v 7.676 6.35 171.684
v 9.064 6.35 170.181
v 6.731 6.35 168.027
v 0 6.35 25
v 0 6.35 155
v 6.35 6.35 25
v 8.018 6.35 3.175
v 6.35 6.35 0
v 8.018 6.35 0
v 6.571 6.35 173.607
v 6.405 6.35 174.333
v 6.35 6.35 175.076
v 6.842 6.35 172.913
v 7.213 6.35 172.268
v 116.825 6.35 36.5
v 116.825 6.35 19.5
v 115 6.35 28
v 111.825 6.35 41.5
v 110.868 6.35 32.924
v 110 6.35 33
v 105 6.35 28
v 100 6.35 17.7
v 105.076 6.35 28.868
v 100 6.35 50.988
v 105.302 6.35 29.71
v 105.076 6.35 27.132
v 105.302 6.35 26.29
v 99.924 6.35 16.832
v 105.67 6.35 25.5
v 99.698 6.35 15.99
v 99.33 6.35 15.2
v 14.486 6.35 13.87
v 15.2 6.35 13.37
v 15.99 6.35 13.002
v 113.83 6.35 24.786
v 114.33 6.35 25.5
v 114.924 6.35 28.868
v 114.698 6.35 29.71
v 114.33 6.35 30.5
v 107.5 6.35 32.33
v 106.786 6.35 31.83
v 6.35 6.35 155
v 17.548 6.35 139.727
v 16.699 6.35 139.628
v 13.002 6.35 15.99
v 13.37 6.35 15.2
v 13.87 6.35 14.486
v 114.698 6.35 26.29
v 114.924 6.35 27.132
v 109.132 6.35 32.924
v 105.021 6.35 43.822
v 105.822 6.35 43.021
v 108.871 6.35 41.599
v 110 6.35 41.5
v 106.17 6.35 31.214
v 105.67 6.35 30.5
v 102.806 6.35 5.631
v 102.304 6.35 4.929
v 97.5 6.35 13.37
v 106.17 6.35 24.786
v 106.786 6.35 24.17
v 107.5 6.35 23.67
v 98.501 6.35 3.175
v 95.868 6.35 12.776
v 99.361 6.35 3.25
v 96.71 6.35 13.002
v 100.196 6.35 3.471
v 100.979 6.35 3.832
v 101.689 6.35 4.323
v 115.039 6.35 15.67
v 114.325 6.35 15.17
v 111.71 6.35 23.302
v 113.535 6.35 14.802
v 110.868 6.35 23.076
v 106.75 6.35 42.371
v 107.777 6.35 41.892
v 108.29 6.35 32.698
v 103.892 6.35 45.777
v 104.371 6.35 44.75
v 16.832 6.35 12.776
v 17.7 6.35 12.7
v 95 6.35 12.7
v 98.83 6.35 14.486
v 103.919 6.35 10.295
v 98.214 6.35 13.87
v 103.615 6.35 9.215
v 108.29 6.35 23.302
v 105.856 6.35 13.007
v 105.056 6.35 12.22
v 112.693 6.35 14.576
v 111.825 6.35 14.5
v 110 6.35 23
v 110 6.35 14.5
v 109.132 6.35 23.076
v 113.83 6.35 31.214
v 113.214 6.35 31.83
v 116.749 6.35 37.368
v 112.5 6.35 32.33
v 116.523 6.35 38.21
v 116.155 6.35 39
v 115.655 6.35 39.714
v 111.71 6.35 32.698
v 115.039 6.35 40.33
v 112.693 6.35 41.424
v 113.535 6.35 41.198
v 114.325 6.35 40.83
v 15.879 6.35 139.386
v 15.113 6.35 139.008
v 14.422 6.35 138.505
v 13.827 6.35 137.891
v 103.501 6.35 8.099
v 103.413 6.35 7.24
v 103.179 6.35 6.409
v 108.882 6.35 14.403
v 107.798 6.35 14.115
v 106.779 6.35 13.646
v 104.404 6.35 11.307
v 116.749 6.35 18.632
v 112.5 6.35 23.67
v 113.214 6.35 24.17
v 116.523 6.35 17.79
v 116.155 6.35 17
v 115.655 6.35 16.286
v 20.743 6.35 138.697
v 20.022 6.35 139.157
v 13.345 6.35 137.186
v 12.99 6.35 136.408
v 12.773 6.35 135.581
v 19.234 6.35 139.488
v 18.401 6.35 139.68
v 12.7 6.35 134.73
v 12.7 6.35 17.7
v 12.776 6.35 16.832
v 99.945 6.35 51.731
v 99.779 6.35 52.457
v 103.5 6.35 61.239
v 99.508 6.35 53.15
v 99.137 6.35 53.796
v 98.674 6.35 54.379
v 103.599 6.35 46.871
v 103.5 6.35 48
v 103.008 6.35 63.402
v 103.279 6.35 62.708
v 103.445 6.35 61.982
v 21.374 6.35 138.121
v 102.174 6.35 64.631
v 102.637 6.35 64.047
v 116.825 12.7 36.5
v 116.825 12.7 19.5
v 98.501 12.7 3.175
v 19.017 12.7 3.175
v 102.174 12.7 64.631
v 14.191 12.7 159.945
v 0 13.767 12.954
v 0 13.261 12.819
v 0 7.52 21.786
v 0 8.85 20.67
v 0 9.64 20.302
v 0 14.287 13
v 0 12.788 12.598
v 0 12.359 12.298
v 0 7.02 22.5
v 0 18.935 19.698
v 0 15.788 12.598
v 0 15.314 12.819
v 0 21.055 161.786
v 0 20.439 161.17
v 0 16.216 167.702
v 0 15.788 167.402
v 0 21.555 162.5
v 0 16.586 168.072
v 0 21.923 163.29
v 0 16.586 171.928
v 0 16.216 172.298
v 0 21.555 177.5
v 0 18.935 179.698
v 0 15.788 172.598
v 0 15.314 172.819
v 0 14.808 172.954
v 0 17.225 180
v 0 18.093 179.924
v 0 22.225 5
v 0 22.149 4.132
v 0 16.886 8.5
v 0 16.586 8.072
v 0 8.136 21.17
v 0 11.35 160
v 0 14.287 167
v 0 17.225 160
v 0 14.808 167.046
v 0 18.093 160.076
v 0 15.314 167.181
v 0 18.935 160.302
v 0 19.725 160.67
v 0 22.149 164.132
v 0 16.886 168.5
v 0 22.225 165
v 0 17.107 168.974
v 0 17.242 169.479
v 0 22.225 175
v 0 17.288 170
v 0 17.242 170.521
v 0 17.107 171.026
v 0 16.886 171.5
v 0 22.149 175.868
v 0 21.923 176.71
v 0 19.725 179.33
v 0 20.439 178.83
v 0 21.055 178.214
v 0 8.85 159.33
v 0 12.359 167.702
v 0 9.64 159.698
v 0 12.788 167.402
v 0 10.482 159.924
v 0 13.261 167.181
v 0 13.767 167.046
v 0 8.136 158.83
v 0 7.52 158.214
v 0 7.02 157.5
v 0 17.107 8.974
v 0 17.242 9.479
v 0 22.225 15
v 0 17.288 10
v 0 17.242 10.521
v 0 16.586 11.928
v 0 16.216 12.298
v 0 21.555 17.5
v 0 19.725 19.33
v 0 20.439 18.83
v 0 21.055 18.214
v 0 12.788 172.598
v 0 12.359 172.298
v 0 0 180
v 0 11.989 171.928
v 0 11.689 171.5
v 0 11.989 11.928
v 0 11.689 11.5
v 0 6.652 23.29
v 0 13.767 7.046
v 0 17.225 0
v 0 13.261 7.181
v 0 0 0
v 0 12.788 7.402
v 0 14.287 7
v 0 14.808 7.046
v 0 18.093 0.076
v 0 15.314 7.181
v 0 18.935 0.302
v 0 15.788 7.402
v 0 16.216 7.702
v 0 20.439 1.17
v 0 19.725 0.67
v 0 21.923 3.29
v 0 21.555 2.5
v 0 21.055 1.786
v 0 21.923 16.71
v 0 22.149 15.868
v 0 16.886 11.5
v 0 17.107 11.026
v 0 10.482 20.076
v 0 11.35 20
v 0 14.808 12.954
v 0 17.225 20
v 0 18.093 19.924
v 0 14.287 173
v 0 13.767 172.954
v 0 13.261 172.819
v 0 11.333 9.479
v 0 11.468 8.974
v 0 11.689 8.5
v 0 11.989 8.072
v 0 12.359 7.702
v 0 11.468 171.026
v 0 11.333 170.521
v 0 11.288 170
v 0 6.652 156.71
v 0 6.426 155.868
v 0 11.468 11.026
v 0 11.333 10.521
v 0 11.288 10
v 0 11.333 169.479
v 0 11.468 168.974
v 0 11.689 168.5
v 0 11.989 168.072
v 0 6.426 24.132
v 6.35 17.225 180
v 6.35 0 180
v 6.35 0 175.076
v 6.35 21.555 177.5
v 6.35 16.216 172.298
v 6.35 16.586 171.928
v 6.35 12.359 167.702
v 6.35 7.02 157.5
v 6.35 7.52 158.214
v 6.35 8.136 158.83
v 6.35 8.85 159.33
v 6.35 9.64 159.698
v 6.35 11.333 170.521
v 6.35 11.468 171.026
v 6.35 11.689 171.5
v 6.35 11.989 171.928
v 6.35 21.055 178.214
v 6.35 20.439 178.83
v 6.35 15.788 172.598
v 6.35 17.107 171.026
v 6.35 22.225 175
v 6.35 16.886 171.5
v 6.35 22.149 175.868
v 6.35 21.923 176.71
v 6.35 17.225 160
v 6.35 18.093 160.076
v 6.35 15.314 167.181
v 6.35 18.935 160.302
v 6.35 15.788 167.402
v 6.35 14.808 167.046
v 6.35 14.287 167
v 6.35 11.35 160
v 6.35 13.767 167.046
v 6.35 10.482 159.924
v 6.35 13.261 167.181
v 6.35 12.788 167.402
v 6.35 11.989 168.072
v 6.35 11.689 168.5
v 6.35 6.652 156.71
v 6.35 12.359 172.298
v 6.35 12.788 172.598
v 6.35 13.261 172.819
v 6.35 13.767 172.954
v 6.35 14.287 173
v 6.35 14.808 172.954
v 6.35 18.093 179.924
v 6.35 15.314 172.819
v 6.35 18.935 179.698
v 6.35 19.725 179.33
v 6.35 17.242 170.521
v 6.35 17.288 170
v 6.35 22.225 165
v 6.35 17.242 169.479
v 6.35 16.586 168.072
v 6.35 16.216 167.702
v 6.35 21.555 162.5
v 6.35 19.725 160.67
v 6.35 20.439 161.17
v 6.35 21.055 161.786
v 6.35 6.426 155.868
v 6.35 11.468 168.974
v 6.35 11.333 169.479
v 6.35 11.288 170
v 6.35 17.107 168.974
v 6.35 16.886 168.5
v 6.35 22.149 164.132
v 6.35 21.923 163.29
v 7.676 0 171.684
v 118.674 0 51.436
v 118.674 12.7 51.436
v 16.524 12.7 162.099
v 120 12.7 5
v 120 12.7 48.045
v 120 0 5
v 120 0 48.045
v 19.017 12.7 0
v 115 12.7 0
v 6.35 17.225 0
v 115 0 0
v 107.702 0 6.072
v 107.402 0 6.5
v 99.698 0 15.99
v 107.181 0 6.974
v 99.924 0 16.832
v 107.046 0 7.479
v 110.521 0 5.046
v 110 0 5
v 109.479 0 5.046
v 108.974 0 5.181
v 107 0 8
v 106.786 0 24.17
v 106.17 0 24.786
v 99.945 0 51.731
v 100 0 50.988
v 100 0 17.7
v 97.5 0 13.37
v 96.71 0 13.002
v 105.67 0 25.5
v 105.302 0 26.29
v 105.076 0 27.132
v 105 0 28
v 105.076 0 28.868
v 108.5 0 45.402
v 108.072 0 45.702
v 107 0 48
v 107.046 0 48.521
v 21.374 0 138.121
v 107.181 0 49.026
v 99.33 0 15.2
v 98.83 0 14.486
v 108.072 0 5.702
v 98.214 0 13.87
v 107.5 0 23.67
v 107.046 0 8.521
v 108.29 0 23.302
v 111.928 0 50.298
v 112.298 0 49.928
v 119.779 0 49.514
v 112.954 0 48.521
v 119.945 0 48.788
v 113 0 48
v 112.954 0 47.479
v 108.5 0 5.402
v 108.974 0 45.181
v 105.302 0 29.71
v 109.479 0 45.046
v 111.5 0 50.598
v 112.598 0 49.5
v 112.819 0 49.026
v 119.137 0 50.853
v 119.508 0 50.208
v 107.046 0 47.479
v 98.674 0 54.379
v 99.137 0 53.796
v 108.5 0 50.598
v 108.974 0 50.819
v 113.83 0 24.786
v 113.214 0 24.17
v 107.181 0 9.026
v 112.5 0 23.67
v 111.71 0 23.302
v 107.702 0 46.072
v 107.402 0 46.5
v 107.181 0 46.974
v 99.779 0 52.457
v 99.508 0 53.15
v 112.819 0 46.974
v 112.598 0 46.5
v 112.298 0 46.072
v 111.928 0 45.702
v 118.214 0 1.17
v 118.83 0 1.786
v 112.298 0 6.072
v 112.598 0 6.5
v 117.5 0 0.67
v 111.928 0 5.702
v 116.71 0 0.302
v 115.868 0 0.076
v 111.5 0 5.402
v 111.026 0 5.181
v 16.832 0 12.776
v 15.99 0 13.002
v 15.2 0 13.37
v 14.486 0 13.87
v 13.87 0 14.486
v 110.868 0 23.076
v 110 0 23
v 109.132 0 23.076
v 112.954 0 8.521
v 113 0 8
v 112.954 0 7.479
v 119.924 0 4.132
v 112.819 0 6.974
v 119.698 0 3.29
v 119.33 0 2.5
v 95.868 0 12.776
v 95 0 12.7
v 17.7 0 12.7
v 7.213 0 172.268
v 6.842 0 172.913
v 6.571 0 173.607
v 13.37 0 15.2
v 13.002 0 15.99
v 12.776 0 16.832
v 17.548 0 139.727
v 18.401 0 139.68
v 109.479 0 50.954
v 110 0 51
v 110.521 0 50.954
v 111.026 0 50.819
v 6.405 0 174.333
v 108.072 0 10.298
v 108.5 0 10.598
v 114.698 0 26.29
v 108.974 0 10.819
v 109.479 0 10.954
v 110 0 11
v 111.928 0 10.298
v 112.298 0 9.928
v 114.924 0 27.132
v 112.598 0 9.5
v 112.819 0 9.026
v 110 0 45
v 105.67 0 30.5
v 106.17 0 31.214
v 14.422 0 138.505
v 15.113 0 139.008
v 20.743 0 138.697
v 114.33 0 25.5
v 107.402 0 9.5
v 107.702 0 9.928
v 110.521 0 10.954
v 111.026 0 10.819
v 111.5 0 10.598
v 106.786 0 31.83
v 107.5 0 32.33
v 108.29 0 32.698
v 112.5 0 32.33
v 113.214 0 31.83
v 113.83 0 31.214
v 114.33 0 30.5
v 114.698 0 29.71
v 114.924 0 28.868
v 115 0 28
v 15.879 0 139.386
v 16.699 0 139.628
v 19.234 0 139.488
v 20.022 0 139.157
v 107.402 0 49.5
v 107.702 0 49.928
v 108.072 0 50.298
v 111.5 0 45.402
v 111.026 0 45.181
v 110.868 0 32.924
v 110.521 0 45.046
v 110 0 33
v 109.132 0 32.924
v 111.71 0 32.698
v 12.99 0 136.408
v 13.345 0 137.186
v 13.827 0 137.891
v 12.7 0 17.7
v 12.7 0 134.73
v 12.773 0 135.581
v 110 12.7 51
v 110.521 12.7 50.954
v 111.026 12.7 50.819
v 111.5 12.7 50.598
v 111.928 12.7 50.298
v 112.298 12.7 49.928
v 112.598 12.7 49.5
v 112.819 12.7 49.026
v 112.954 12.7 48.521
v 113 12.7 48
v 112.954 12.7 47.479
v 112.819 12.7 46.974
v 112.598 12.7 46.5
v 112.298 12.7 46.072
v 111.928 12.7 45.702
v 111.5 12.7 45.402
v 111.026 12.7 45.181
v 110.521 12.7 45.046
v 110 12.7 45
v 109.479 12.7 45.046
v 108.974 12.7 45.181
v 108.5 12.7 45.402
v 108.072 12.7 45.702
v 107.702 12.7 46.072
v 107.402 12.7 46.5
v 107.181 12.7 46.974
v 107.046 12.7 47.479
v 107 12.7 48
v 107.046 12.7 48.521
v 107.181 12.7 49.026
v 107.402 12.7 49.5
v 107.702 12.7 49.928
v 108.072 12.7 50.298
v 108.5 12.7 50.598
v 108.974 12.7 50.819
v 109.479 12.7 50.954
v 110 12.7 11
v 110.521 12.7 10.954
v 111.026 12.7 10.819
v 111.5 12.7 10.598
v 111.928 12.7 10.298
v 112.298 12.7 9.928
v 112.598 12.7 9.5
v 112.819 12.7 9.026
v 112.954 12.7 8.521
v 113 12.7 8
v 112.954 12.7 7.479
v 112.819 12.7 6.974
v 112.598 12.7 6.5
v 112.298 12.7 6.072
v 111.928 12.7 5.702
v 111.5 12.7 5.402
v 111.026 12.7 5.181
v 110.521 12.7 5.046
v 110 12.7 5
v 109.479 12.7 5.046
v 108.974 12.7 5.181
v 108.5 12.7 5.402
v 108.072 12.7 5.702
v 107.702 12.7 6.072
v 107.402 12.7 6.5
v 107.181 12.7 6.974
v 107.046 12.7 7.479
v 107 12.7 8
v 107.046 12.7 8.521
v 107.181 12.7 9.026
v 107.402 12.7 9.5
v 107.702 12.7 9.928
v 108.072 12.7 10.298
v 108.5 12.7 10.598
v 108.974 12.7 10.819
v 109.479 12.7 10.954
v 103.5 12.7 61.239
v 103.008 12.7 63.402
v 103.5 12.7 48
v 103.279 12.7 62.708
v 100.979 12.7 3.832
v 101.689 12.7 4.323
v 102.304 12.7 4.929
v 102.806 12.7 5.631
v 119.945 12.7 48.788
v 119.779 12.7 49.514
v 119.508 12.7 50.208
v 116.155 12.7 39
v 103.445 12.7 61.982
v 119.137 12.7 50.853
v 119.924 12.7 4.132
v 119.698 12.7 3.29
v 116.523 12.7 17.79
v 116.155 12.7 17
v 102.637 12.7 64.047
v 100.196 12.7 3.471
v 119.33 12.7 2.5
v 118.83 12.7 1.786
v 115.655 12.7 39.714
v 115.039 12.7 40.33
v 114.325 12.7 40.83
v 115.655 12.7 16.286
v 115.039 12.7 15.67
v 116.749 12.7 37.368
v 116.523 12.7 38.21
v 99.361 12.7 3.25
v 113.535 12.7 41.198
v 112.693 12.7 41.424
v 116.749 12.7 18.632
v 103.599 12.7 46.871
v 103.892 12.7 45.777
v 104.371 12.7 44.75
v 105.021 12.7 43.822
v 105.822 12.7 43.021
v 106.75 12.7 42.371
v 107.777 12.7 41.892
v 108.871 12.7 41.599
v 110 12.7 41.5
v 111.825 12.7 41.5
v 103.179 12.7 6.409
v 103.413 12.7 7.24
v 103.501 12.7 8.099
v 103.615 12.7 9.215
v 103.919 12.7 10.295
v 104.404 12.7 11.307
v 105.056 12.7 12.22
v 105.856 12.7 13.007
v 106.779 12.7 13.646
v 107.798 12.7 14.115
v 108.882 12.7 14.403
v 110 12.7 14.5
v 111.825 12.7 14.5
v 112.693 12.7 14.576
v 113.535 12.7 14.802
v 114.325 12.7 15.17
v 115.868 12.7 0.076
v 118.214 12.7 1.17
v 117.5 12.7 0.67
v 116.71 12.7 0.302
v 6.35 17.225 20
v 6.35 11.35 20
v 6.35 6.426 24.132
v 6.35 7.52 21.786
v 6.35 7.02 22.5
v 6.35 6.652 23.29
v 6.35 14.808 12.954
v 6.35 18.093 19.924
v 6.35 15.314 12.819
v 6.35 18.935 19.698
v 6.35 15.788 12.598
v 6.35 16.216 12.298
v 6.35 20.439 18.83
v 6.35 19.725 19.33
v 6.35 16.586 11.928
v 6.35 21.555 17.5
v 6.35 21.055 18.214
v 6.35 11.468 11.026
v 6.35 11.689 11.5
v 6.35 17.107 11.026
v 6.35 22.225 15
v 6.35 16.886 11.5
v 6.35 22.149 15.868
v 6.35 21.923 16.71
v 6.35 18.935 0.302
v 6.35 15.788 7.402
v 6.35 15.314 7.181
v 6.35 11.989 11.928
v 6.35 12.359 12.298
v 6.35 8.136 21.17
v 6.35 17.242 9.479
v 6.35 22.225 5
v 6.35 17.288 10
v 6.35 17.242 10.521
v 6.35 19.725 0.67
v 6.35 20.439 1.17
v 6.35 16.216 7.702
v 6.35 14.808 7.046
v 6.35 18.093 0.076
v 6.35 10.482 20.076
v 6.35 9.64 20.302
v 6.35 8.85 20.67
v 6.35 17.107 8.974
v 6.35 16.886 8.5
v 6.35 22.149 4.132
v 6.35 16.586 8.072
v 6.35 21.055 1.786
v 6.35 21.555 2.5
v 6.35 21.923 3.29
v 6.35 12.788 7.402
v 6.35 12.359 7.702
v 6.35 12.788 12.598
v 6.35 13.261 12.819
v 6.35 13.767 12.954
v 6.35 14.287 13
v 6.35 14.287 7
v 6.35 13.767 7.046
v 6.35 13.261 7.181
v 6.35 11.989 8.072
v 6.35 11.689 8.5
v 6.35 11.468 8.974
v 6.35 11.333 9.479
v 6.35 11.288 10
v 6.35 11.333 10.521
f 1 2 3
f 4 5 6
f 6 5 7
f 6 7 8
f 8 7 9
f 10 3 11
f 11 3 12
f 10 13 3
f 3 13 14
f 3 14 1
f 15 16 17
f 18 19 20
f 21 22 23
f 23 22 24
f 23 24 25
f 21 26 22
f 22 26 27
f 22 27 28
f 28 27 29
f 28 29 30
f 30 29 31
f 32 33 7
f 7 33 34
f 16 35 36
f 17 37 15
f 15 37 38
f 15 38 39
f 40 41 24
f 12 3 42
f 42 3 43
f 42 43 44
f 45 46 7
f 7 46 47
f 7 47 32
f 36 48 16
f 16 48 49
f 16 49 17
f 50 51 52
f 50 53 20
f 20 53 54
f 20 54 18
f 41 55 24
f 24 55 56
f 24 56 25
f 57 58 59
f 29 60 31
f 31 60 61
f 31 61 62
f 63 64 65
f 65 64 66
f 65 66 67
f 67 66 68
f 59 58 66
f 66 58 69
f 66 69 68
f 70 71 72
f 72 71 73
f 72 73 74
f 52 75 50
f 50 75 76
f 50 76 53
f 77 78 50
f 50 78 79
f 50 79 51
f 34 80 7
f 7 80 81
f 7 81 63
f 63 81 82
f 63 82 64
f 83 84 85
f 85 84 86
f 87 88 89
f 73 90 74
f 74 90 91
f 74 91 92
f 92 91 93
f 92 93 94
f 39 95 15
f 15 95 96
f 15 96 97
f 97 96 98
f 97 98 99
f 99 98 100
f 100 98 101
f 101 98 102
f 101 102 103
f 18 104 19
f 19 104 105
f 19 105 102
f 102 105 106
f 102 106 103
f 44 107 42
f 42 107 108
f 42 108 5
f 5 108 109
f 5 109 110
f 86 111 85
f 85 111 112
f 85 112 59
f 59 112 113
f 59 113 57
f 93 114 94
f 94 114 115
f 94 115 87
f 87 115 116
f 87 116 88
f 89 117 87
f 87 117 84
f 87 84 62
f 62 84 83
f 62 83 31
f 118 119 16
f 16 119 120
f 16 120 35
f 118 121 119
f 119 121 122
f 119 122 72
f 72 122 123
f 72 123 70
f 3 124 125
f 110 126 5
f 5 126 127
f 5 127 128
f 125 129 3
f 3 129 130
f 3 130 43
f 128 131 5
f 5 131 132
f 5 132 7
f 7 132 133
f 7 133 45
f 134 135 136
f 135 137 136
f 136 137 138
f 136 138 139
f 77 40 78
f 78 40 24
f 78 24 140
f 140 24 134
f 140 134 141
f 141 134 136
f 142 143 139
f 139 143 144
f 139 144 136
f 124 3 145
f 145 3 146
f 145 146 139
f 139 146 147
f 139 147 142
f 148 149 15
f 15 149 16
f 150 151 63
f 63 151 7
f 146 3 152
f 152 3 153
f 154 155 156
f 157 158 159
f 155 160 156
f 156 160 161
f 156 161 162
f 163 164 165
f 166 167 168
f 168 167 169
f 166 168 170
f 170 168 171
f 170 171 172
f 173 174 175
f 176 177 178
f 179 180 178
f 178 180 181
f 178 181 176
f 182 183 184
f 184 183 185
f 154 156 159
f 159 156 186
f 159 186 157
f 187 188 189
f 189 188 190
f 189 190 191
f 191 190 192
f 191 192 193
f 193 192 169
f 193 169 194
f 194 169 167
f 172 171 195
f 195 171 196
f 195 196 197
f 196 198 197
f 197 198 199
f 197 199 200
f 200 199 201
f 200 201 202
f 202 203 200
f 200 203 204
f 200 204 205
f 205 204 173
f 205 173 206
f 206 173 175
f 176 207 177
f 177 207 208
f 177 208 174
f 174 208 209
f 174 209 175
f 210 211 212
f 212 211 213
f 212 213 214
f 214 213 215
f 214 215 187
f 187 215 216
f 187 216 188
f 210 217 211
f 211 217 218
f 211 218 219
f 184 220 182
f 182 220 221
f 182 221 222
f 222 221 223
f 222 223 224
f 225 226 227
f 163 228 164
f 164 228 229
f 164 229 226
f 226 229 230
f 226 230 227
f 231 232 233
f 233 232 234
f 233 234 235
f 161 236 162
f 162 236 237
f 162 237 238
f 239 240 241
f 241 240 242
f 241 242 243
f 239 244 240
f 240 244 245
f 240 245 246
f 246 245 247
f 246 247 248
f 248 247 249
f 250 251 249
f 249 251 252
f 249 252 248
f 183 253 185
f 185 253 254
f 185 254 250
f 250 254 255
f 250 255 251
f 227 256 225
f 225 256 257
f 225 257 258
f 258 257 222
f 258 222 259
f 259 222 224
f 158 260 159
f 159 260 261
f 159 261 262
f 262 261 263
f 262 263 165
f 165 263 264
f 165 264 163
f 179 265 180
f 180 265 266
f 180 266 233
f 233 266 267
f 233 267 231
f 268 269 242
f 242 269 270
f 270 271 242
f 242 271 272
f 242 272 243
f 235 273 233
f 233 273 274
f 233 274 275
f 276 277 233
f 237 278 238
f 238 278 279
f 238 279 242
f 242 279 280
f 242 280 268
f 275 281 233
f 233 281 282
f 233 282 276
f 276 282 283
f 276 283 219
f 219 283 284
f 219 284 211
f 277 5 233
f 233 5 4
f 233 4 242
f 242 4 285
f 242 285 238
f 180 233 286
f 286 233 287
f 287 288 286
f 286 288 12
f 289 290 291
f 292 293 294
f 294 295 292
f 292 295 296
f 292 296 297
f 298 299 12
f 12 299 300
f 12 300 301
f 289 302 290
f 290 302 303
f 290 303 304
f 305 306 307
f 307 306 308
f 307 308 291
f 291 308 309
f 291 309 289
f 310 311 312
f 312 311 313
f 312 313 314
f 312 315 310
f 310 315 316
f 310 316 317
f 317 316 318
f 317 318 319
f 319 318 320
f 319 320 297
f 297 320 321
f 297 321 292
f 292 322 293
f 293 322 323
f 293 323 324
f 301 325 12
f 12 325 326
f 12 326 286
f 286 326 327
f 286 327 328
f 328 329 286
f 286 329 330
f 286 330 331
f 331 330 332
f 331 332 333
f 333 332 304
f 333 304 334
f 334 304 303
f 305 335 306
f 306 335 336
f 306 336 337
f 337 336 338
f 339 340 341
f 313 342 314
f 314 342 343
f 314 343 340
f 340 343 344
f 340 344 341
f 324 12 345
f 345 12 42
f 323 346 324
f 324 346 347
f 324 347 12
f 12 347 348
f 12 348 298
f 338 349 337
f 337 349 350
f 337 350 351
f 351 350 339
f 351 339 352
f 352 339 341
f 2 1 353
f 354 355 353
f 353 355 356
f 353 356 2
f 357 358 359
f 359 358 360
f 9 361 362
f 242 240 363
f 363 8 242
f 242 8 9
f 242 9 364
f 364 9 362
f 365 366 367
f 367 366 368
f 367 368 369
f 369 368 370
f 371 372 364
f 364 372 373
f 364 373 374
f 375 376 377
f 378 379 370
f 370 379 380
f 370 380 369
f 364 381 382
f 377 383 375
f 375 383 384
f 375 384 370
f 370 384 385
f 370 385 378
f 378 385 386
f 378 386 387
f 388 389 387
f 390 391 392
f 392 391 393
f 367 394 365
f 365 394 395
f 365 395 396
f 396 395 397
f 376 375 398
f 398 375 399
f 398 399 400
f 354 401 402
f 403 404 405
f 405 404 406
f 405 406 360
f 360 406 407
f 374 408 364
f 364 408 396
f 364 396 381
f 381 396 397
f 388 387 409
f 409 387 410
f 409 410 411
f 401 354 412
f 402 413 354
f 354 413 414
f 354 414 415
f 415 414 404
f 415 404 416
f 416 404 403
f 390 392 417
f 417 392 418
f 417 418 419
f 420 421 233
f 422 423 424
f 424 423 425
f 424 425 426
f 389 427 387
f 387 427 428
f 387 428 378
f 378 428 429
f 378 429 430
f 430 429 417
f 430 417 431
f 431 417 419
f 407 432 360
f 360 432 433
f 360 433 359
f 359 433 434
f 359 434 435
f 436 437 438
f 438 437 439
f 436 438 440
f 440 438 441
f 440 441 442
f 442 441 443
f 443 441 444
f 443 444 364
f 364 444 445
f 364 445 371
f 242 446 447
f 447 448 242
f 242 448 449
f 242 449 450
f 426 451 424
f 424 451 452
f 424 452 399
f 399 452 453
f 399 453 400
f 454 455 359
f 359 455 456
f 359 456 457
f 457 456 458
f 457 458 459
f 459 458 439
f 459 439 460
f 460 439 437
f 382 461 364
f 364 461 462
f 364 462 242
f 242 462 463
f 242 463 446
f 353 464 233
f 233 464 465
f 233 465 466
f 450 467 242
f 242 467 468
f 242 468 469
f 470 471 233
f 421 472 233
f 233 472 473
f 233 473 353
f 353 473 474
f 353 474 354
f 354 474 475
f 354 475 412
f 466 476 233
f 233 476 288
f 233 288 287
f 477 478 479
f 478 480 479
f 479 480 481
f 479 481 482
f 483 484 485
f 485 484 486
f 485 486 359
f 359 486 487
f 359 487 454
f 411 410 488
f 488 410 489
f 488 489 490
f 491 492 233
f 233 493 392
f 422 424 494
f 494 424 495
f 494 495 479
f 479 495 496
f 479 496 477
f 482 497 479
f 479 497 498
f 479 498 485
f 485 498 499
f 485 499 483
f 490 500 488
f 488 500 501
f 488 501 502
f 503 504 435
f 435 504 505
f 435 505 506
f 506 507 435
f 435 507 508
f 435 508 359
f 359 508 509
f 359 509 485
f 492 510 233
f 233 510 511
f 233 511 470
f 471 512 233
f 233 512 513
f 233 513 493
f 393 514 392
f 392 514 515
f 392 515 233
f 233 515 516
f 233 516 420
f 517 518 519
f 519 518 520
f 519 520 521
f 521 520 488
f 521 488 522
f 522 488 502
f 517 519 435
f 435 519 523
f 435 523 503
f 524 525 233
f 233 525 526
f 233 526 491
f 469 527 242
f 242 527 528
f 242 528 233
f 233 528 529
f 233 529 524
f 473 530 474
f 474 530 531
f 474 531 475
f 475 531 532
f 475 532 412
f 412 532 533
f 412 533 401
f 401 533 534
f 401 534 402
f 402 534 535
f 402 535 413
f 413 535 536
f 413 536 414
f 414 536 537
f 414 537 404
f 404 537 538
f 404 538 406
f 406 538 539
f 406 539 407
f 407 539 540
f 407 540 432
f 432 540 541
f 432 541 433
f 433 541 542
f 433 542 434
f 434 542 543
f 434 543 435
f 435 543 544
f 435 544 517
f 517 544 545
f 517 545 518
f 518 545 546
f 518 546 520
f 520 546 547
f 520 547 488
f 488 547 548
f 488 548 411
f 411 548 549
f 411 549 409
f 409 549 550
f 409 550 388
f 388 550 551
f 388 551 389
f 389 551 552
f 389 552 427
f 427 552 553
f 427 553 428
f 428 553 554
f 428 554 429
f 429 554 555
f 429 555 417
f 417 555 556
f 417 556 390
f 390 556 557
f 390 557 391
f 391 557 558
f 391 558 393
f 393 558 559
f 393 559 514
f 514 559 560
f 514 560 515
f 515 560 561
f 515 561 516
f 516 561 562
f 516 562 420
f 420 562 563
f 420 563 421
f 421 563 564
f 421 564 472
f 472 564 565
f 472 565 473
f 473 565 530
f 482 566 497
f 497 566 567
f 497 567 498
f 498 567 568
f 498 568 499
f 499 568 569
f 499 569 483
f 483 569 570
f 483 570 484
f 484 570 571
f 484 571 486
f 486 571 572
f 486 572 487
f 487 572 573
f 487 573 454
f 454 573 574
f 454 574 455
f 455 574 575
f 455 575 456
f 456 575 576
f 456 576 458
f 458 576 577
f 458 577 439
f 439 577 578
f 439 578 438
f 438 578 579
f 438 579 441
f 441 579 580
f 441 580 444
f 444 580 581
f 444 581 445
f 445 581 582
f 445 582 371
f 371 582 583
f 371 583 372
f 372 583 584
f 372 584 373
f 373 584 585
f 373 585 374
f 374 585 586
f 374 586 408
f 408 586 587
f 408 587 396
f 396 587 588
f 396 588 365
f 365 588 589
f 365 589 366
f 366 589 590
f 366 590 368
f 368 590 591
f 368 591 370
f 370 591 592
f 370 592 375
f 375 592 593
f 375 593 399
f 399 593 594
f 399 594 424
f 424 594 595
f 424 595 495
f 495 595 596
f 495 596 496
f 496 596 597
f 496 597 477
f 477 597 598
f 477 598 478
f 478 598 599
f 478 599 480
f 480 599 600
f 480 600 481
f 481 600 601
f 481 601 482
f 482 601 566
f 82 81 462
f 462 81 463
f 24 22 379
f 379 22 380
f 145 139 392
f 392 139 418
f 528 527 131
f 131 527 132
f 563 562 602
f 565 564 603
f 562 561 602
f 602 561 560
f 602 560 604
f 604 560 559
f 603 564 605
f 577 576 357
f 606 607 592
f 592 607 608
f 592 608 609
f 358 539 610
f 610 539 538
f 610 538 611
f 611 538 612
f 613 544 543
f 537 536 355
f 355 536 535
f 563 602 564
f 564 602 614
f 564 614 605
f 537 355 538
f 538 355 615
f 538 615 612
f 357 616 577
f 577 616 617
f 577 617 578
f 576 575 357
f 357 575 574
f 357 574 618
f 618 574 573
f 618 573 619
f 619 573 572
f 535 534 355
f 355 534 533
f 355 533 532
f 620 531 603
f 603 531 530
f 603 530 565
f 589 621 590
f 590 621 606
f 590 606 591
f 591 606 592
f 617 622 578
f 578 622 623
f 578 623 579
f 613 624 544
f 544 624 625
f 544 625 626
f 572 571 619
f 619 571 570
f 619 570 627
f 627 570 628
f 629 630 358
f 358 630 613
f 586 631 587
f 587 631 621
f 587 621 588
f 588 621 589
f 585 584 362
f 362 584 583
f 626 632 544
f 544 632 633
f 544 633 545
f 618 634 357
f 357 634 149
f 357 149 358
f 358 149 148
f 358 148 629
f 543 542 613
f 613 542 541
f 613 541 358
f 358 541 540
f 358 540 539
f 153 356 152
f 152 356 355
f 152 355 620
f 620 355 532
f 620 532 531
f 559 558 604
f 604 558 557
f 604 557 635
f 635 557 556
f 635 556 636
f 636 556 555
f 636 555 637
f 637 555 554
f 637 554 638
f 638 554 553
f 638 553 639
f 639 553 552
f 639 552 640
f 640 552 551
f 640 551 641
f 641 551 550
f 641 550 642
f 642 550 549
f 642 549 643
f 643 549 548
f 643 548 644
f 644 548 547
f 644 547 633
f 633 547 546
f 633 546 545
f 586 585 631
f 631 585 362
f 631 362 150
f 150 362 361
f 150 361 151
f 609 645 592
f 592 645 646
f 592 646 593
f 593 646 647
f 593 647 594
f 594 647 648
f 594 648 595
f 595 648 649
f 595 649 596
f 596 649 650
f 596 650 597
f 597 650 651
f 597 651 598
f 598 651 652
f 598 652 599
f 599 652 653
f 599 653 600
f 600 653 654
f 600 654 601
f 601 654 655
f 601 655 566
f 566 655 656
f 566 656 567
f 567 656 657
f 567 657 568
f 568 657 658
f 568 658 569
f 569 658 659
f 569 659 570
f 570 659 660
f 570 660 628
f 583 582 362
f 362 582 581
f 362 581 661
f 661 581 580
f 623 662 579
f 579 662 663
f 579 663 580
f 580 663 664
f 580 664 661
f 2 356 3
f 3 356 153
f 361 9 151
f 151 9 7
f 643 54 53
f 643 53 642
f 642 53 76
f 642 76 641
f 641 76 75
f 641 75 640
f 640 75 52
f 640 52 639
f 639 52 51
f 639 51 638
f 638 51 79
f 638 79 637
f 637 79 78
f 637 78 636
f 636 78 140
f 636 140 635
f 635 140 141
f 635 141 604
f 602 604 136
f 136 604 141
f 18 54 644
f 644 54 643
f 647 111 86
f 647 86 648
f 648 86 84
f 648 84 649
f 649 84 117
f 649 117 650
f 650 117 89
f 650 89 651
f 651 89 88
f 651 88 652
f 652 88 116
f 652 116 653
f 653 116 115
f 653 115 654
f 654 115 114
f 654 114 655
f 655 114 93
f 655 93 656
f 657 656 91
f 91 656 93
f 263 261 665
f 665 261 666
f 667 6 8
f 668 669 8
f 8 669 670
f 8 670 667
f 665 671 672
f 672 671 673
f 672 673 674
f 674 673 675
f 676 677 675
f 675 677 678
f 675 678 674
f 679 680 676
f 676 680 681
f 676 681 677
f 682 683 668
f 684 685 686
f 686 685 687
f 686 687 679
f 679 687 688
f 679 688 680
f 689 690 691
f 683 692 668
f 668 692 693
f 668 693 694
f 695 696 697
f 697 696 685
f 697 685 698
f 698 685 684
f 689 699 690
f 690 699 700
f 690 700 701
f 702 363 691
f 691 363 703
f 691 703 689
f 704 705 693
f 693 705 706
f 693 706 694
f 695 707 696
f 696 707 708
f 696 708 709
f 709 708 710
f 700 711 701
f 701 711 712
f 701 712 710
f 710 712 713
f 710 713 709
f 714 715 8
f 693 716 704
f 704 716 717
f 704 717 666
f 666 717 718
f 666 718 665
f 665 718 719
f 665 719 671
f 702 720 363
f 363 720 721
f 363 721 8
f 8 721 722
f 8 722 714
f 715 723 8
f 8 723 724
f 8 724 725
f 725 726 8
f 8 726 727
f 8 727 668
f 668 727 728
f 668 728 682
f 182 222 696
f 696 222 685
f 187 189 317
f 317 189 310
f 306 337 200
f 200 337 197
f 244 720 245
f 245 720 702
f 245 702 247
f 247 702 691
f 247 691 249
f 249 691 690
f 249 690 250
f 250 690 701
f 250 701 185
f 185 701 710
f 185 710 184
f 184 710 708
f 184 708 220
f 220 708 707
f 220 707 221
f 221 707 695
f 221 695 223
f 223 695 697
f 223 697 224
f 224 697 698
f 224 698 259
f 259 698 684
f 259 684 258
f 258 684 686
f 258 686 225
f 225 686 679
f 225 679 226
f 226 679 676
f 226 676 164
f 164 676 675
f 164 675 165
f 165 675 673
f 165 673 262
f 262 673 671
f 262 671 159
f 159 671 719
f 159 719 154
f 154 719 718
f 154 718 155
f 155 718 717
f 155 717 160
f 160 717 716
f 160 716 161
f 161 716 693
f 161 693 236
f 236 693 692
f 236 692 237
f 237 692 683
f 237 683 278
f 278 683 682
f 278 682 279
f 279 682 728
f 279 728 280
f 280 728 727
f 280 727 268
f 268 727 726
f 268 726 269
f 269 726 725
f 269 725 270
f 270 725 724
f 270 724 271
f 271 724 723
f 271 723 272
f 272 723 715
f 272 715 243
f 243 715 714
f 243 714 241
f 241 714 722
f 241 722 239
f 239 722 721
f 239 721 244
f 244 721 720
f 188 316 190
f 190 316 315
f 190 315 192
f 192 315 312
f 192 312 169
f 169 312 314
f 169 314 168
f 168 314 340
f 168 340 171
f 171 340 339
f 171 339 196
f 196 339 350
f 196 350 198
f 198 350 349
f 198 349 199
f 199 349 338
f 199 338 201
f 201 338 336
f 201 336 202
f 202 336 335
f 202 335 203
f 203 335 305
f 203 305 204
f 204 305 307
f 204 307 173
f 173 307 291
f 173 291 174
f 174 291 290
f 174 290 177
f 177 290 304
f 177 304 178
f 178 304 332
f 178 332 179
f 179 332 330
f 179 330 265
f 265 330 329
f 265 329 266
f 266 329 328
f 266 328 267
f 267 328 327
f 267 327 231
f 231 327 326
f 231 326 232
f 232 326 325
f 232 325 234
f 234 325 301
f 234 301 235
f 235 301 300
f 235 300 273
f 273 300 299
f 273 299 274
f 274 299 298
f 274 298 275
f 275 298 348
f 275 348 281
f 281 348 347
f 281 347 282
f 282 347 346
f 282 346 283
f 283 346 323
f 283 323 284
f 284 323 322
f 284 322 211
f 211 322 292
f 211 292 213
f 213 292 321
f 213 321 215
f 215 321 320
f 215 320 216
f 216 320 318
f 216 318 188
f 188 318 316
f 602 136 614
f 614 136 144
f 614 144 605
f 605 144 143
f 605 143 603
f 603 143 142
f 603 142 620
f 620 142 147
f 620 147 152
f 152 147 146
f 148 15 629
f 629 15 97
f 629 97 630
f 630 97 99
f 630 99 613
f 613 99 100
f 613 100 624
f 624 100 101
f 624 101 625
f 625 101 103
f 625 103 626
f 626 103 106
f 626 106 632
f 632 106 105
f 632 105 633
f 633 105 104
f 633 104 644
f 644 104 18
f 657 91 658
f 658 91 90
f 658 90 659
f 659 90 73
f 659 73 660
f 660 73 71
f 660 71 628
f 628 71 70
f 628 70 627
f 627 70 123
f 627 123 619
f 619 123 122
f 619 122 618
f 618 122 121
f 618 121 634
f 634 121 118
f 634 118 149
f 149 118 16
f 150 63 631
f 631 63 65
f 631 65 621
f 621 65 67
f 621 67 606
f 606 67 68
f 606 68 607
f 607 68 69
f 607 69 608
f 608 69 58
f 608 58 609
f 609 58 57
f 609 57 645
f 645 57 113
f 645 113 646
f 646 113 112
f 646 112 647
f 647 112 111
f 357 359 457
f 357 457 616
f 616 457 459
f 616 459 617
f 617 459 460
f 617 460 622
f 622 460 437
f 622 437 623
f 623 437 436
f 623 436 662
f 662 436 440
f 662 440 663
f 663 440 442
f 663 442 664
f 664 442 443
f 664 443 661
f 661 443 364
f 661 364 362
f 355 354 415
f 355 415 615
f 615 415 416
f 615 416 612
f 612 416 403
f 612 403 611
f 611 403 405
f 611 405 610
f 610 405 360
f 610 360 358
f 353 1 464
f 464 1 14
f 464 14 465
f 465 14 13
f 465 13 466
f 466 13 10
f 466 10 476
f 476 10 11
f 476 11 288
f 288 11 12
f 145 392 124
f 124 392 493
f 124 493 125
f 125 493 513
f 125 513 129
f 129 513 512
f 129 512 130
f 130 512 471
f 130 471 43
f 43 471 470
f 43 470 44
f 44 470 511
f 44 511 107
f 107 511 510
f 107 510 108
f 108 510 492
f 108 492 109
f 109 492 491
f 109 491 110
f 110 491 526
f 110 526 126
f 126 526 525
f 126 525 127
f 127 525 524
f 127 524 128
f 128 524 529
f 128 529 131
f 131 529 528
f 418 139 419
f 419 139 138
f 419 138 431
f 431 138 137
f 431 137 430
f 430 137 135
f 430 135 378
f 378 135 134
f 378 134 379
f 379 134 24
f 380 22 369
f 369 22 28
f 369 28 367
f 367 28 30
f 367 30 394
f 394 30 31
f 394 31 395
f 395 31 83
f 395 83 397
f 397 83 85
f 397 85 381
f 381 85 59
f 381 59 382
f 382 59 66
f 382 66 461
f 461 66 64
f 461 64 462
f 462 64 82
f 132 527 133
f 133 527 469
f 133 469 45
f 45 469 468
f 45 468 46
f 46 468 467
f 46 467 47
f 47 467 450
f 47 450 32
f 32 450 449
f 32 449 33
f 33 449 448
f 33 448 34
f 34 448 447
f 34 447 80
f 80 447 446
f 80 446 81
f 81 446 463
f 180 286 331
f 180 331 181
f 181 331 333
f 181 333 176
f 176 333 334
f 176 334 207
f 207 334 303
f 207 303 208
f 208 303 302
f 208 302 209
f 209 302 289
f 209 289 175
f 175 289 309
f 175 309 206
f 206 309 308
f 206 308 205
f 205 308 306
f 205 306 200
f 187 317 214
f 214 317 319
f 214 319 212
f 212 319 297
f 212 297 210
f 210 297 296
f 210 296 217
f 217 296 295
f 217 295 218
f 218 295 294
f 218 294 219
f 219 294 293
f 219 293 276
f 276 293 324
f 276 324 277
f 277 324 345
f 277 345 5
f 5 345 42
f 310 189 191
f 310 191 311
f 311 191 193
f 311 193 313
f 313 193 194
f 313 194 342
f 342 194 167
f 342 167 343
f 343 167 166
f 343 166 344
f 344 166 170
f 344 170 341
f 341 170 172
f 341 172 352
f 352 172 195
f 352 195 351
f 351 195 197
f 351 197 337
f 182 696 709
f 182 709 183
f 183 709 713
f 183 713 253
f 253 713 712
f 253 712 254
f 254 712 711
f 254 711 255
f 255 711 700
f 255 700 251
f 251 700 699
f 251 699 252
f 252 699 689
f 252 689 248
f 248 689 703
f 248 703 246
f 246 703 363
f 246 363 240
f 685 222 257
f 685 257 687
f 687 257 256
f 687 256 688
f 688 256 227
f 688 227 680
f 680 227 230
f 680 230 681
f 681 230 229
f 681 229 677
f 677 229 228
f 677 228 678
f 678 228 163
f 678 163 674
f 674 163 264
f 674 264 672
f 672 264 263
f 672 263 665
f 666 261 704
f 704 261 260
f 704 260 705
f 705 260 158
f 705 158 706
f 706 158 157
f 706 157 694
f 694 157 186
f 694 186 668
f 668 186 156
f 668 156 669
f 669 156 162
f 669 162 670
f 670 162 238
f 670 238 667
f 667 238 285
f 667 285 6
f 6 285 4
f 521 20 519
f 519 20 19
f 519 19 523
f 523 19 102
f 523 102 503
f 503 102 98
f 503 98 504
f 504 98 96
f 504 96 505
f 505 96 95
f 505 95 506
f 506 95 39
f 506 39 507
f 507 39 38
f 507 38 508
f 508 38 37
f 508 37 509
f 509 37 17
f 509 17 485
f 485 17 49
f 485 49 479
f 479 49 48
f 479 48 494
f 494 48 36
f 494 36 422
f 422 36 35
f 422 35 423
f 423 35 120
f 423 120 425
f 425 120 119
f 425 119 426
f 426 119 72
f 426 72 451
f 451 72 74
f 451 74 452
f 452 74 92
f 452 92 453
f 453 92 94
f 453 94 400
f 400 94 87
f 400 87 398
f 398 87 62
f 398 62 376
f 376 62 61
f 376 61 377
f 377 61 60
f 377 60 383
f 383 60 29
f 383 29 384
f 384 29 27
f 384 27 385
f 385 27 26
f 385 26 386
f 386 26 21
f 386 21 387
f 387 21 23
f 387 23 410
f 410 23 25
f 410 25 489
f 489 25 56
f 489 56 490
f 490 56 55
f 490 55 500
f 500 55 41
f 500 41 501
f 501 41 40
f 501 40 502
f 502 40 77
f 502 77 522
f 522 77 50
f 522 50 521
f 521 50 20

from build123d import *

# Parameters (mm, degrees)
BOSS_EXTRUDE1_DEPTH = 6.35
SKETCH2_R           = 3
CUT_EXTRUDE3_DEPTH  = 217.426251873
BOSS_EXTRUDE3_DEPTH = 6.35
CHAMFER1_SIZE       = 8.660254038
CHAMFER1_SIZE_2     = 15
BOSS_EXTRUDE4_START = 6.35
SKETCH8_R           = 3
BOSS_EXTRUDE4_DEPTH = 6.35
SKETCH9_W           = 6.35
SKETCH9_H           = 20
BOSS_EXTRUDE5_DEPTH = 15.875
SKETCH10_R          = 3
CUT_EXTRUDE4_DEPTH  = 110.875
FILLET3_R           = 5
SKETCH11_R          = 5
CUT_EXTRUDE5_DEPTH  = 15.875


with BuildPart() as part:
    # Sketch1 → Boss-Extrude1 (new body)
    with BuildSketch(Plane(origin=(0, 0, 0), x_dir=(1, 0, 0), z_dir=(0, 1, 0))):
        Polygon((0, 0), (120, 0), (120, -50), (6.35, -173.120833333), (6.35, -180), (0, -180), align=None)
    extrude(amount=BOSS_EXTRUDE1_DEPTH)

    # Sketch2 → Cut-Extrude3 (cut, through all)
    with BuildSketch(Plane(origin=(0, 6.35, 0), x_dir=(1, 0, 0), z_dir=(0, 1, 0))):
        with Locations(Location((110, -8, 0), (0, 0, 270))):
            Circle(SKETCH2_R)
        with Locations(Location((110, -48, 0), (0, 0, 270))):
            Circle(SKETCH2_R)
        Polygon((100, -12.7), (100, -52.942838636), (12.7, -147.517838636), (12.7, -12.7), align=None)
    extrude(amount=-CUT_EXTRUDE3_DEPTH, mode=Mode.SUBTRACT)

    # Sketch7 → Boss-Extrude3 (add)
    with BuildSketch(Plane(origin=(0, 6.35, 0), x_dir=(1, 0, 0), z_dir=(0, 1, 0))):
        Polygon((116.825, -48.758626326), (4.016999063, -170.967294007), (6.35, -173.120833333), (120, -50), (120, 0), (4.016999063, 0), (4.016999063, -3.175), (116.825, -3.175), align=None)
    extrude(amount=BOSS_EXTRUDE3_DEPTH)

    # Chamfer1
    # the kernel refuses this chamfer: 15, 8.660254038 mm, written as the material it takes off along each edge
    with BuildSketch(Plane(origin=(-24.497993798, 12.7, 144.645762136), x_dir=(-0.03926825493809675, -0.9983227437537926, 0.04254060951627175), z_dir=(0.73480344462749, 0, 0.6782801027330635))) as chamfer1_piece_1_section:
        Polygon((CHAMFER1_SIZE * 0.998322743736, CHAMFER1_SIZE * 0.0578938624016), (-CHAMFER1_SIZE_2 * 0.0578938624027, CHAMFER1_SIZE_2 * 0.998322743754), (0, 0), align=None)
    chamfer1_piece_1 = extrude(amount=80.787572639, mode=Mode.PRIVATE)
    chamfer1_piece_1 = split(chamfer1_piece_1, bisect_by=Plane(origin=(8.850305535, 6.35, 168.0716905), z_dir=(0, 1, 0)), keep=Keep.TOP, mode=Mode.PRIVATE)
    add(chamfer1_piece_1, mode=Mode.SUBTRACT)
    with BuildSketch(Plane(origin=(4.016999063, 12.7, -38.80628632), x_dir=(0.9998132206222079, 0.019326765612700747, 0), z_dir=(0, 0, 1))) as chamfer1_piece_2_section:
        Polygon((CHAMFER1_SIZE_2 * 0.999813220622, -CHAMFER1_SIZE_2 * 0.0193267656127), (-CHAMFER1_SIZE * 0.0193267656124, -CHAMFER1_SIZE * 0.999813220604), (0, 0), align=None)
    chamfer1_piece_2 = extrude(amount=80.787572639, mode=Mode.PRIVATE)
    chamfer1_piece_2 = split(chamfer1_piece_2, bisect_by=Plane(origin=(9.423034105, 6.35, 1.5875), z_dir=(0, 1, 0)), keep=Keep.TOP, mode=Mode.PRIVATE)
    add(chamfer1_piece_2, mode=Mode.SUBTRACT)

    # Sketch8 → Boss-Extrude4 (add)
    # profile 1 of 2: a face of its own
    with BuildSketch(Plane(origin=(0, 6.35, 0), x_dir=(1, 0, 0), z_dir=(0, 1, 0)).offset(BOSS_EXTRUDE4_START)):
        with BuildLine():
            Line((110, -14.5), (116.825, -14.5))
            Line((116.825, -14.5), (116.825, -3.175))
            Line((116.825, -3.175), (103.5, -3.175))
            Line((103.5, -3.175), (103.5, -8))
            ThreePointArc((103.5, -8), (105.403805922, -12.596194078), (110, -14.5))
        make_face()
        with Locations(Location((110, -8, 0), (0, 0, 270))):
            Circle(SKETCH8_R, mode=Mode.SUBTRACT)
    # profile 2 of 2: a face of its own
    with BuildSketch(Plane(origin=(0, 6.35, 0), x_dir=(1, 0, 0), z_dir=(0, 1, 0)).offset(BOSS_EXTRUDE4_START)):
        with BuildLine():
            Line((110, -41.5), (116.825, -41.5))
            Line((116.825, -41.5), (116.825, -48.758626326))
            Line((116.825, -48.758626326), (103.5, -63.194042992))
            Line((103.5, -63.194042992), (103.5, -48))
            ThreePointArc((103.5, -48), (105.403805922, -43.403805922), (110, -41.5))
        make_face()
        with Locations(Location((110, -48, 0), (0, 0, 270))):
            Circle(SKETCH8_R, mode=Mode.SUBTRACT)
    extrude(amount=-BOSS_EXTRUDE4_DEPTH)

    # Sketch9 → Boss-Extrude5 (add)
    with BuildSketch(Plane(origin=(0, 6.35, 0), x_dir=(1, 0, 0), z_dir=(0, 1, 0))):
        with Locations((3.175, -10)):
            Rectangle(SKETCH9_W, SKETCH9_H)
        with Locations((3.175, -170)):
            Rectangle(SKETCH9_W, SKETCH9_H)
    extrude(amount=BOSS_EXTRUDE5_DEPTH)

    # Sketch10 → Cut-Extrude4 (cut)
    with BuildSketch(Plane(origin=(6.35, 0, 0), x_dir=(0, 0, -1), z_dir=(1, 0, 0))):
        with Locations((-10, 14.2875)):
            Circle(SKETCH10_R)
        with Locations((-170, 14.2875)):
            Circle(SKETCH10_R)
    extrude(amount=-CUT_EXTRUDE4_DEPTH, mode=Mode.SUBTRACT)

    # Fillet3
    fillet3_edges = [part.edges().sort_by_distance(p)[0] for p in [
        (103.5, 9.525, 63.194042992),
        (116.825, 9.525, 41.5),
        (116.825, 9.525, 14.5),
        (103.5, 9.525, 3.175),
        (120, 6.35, 0),
        (120, 6.35, 50),
        (6.35, 3.175, 173.120833333),
        (12.7, 3.175, 147.517838636),
        (100, 3.175, 52.942838636),
        (100, 3.175, 12.7),
        (12.7, 3.175, 12.7),
        (3.175, 22.225, 180),
        (3.175, 6.35, 160),
        (3.175, 22.225, 160),
        (3.175, 22.225, 0),
        (3.175, 22.225, 20),
        (3.175, 6.35, 20),
    ]]
    fillet(fillet3_edges, radius=FILLET3_R)

    # Sketch11 → Cut-Extrude5 (cut)
    with BuildSketch(Plane(origin=(0, 6.35, 0), x_dir=(1, 0, 0), z_dir=(0, 1, 0))):
        with Locations(Location((110, -28, 0), (0, 0, 270))):
            Circle(SKETCH11_R)
    extrude(amount=-CUT_EXTRUDE5_DEPTH, mode=Mode.SUBTRACT)


solid = part.part
